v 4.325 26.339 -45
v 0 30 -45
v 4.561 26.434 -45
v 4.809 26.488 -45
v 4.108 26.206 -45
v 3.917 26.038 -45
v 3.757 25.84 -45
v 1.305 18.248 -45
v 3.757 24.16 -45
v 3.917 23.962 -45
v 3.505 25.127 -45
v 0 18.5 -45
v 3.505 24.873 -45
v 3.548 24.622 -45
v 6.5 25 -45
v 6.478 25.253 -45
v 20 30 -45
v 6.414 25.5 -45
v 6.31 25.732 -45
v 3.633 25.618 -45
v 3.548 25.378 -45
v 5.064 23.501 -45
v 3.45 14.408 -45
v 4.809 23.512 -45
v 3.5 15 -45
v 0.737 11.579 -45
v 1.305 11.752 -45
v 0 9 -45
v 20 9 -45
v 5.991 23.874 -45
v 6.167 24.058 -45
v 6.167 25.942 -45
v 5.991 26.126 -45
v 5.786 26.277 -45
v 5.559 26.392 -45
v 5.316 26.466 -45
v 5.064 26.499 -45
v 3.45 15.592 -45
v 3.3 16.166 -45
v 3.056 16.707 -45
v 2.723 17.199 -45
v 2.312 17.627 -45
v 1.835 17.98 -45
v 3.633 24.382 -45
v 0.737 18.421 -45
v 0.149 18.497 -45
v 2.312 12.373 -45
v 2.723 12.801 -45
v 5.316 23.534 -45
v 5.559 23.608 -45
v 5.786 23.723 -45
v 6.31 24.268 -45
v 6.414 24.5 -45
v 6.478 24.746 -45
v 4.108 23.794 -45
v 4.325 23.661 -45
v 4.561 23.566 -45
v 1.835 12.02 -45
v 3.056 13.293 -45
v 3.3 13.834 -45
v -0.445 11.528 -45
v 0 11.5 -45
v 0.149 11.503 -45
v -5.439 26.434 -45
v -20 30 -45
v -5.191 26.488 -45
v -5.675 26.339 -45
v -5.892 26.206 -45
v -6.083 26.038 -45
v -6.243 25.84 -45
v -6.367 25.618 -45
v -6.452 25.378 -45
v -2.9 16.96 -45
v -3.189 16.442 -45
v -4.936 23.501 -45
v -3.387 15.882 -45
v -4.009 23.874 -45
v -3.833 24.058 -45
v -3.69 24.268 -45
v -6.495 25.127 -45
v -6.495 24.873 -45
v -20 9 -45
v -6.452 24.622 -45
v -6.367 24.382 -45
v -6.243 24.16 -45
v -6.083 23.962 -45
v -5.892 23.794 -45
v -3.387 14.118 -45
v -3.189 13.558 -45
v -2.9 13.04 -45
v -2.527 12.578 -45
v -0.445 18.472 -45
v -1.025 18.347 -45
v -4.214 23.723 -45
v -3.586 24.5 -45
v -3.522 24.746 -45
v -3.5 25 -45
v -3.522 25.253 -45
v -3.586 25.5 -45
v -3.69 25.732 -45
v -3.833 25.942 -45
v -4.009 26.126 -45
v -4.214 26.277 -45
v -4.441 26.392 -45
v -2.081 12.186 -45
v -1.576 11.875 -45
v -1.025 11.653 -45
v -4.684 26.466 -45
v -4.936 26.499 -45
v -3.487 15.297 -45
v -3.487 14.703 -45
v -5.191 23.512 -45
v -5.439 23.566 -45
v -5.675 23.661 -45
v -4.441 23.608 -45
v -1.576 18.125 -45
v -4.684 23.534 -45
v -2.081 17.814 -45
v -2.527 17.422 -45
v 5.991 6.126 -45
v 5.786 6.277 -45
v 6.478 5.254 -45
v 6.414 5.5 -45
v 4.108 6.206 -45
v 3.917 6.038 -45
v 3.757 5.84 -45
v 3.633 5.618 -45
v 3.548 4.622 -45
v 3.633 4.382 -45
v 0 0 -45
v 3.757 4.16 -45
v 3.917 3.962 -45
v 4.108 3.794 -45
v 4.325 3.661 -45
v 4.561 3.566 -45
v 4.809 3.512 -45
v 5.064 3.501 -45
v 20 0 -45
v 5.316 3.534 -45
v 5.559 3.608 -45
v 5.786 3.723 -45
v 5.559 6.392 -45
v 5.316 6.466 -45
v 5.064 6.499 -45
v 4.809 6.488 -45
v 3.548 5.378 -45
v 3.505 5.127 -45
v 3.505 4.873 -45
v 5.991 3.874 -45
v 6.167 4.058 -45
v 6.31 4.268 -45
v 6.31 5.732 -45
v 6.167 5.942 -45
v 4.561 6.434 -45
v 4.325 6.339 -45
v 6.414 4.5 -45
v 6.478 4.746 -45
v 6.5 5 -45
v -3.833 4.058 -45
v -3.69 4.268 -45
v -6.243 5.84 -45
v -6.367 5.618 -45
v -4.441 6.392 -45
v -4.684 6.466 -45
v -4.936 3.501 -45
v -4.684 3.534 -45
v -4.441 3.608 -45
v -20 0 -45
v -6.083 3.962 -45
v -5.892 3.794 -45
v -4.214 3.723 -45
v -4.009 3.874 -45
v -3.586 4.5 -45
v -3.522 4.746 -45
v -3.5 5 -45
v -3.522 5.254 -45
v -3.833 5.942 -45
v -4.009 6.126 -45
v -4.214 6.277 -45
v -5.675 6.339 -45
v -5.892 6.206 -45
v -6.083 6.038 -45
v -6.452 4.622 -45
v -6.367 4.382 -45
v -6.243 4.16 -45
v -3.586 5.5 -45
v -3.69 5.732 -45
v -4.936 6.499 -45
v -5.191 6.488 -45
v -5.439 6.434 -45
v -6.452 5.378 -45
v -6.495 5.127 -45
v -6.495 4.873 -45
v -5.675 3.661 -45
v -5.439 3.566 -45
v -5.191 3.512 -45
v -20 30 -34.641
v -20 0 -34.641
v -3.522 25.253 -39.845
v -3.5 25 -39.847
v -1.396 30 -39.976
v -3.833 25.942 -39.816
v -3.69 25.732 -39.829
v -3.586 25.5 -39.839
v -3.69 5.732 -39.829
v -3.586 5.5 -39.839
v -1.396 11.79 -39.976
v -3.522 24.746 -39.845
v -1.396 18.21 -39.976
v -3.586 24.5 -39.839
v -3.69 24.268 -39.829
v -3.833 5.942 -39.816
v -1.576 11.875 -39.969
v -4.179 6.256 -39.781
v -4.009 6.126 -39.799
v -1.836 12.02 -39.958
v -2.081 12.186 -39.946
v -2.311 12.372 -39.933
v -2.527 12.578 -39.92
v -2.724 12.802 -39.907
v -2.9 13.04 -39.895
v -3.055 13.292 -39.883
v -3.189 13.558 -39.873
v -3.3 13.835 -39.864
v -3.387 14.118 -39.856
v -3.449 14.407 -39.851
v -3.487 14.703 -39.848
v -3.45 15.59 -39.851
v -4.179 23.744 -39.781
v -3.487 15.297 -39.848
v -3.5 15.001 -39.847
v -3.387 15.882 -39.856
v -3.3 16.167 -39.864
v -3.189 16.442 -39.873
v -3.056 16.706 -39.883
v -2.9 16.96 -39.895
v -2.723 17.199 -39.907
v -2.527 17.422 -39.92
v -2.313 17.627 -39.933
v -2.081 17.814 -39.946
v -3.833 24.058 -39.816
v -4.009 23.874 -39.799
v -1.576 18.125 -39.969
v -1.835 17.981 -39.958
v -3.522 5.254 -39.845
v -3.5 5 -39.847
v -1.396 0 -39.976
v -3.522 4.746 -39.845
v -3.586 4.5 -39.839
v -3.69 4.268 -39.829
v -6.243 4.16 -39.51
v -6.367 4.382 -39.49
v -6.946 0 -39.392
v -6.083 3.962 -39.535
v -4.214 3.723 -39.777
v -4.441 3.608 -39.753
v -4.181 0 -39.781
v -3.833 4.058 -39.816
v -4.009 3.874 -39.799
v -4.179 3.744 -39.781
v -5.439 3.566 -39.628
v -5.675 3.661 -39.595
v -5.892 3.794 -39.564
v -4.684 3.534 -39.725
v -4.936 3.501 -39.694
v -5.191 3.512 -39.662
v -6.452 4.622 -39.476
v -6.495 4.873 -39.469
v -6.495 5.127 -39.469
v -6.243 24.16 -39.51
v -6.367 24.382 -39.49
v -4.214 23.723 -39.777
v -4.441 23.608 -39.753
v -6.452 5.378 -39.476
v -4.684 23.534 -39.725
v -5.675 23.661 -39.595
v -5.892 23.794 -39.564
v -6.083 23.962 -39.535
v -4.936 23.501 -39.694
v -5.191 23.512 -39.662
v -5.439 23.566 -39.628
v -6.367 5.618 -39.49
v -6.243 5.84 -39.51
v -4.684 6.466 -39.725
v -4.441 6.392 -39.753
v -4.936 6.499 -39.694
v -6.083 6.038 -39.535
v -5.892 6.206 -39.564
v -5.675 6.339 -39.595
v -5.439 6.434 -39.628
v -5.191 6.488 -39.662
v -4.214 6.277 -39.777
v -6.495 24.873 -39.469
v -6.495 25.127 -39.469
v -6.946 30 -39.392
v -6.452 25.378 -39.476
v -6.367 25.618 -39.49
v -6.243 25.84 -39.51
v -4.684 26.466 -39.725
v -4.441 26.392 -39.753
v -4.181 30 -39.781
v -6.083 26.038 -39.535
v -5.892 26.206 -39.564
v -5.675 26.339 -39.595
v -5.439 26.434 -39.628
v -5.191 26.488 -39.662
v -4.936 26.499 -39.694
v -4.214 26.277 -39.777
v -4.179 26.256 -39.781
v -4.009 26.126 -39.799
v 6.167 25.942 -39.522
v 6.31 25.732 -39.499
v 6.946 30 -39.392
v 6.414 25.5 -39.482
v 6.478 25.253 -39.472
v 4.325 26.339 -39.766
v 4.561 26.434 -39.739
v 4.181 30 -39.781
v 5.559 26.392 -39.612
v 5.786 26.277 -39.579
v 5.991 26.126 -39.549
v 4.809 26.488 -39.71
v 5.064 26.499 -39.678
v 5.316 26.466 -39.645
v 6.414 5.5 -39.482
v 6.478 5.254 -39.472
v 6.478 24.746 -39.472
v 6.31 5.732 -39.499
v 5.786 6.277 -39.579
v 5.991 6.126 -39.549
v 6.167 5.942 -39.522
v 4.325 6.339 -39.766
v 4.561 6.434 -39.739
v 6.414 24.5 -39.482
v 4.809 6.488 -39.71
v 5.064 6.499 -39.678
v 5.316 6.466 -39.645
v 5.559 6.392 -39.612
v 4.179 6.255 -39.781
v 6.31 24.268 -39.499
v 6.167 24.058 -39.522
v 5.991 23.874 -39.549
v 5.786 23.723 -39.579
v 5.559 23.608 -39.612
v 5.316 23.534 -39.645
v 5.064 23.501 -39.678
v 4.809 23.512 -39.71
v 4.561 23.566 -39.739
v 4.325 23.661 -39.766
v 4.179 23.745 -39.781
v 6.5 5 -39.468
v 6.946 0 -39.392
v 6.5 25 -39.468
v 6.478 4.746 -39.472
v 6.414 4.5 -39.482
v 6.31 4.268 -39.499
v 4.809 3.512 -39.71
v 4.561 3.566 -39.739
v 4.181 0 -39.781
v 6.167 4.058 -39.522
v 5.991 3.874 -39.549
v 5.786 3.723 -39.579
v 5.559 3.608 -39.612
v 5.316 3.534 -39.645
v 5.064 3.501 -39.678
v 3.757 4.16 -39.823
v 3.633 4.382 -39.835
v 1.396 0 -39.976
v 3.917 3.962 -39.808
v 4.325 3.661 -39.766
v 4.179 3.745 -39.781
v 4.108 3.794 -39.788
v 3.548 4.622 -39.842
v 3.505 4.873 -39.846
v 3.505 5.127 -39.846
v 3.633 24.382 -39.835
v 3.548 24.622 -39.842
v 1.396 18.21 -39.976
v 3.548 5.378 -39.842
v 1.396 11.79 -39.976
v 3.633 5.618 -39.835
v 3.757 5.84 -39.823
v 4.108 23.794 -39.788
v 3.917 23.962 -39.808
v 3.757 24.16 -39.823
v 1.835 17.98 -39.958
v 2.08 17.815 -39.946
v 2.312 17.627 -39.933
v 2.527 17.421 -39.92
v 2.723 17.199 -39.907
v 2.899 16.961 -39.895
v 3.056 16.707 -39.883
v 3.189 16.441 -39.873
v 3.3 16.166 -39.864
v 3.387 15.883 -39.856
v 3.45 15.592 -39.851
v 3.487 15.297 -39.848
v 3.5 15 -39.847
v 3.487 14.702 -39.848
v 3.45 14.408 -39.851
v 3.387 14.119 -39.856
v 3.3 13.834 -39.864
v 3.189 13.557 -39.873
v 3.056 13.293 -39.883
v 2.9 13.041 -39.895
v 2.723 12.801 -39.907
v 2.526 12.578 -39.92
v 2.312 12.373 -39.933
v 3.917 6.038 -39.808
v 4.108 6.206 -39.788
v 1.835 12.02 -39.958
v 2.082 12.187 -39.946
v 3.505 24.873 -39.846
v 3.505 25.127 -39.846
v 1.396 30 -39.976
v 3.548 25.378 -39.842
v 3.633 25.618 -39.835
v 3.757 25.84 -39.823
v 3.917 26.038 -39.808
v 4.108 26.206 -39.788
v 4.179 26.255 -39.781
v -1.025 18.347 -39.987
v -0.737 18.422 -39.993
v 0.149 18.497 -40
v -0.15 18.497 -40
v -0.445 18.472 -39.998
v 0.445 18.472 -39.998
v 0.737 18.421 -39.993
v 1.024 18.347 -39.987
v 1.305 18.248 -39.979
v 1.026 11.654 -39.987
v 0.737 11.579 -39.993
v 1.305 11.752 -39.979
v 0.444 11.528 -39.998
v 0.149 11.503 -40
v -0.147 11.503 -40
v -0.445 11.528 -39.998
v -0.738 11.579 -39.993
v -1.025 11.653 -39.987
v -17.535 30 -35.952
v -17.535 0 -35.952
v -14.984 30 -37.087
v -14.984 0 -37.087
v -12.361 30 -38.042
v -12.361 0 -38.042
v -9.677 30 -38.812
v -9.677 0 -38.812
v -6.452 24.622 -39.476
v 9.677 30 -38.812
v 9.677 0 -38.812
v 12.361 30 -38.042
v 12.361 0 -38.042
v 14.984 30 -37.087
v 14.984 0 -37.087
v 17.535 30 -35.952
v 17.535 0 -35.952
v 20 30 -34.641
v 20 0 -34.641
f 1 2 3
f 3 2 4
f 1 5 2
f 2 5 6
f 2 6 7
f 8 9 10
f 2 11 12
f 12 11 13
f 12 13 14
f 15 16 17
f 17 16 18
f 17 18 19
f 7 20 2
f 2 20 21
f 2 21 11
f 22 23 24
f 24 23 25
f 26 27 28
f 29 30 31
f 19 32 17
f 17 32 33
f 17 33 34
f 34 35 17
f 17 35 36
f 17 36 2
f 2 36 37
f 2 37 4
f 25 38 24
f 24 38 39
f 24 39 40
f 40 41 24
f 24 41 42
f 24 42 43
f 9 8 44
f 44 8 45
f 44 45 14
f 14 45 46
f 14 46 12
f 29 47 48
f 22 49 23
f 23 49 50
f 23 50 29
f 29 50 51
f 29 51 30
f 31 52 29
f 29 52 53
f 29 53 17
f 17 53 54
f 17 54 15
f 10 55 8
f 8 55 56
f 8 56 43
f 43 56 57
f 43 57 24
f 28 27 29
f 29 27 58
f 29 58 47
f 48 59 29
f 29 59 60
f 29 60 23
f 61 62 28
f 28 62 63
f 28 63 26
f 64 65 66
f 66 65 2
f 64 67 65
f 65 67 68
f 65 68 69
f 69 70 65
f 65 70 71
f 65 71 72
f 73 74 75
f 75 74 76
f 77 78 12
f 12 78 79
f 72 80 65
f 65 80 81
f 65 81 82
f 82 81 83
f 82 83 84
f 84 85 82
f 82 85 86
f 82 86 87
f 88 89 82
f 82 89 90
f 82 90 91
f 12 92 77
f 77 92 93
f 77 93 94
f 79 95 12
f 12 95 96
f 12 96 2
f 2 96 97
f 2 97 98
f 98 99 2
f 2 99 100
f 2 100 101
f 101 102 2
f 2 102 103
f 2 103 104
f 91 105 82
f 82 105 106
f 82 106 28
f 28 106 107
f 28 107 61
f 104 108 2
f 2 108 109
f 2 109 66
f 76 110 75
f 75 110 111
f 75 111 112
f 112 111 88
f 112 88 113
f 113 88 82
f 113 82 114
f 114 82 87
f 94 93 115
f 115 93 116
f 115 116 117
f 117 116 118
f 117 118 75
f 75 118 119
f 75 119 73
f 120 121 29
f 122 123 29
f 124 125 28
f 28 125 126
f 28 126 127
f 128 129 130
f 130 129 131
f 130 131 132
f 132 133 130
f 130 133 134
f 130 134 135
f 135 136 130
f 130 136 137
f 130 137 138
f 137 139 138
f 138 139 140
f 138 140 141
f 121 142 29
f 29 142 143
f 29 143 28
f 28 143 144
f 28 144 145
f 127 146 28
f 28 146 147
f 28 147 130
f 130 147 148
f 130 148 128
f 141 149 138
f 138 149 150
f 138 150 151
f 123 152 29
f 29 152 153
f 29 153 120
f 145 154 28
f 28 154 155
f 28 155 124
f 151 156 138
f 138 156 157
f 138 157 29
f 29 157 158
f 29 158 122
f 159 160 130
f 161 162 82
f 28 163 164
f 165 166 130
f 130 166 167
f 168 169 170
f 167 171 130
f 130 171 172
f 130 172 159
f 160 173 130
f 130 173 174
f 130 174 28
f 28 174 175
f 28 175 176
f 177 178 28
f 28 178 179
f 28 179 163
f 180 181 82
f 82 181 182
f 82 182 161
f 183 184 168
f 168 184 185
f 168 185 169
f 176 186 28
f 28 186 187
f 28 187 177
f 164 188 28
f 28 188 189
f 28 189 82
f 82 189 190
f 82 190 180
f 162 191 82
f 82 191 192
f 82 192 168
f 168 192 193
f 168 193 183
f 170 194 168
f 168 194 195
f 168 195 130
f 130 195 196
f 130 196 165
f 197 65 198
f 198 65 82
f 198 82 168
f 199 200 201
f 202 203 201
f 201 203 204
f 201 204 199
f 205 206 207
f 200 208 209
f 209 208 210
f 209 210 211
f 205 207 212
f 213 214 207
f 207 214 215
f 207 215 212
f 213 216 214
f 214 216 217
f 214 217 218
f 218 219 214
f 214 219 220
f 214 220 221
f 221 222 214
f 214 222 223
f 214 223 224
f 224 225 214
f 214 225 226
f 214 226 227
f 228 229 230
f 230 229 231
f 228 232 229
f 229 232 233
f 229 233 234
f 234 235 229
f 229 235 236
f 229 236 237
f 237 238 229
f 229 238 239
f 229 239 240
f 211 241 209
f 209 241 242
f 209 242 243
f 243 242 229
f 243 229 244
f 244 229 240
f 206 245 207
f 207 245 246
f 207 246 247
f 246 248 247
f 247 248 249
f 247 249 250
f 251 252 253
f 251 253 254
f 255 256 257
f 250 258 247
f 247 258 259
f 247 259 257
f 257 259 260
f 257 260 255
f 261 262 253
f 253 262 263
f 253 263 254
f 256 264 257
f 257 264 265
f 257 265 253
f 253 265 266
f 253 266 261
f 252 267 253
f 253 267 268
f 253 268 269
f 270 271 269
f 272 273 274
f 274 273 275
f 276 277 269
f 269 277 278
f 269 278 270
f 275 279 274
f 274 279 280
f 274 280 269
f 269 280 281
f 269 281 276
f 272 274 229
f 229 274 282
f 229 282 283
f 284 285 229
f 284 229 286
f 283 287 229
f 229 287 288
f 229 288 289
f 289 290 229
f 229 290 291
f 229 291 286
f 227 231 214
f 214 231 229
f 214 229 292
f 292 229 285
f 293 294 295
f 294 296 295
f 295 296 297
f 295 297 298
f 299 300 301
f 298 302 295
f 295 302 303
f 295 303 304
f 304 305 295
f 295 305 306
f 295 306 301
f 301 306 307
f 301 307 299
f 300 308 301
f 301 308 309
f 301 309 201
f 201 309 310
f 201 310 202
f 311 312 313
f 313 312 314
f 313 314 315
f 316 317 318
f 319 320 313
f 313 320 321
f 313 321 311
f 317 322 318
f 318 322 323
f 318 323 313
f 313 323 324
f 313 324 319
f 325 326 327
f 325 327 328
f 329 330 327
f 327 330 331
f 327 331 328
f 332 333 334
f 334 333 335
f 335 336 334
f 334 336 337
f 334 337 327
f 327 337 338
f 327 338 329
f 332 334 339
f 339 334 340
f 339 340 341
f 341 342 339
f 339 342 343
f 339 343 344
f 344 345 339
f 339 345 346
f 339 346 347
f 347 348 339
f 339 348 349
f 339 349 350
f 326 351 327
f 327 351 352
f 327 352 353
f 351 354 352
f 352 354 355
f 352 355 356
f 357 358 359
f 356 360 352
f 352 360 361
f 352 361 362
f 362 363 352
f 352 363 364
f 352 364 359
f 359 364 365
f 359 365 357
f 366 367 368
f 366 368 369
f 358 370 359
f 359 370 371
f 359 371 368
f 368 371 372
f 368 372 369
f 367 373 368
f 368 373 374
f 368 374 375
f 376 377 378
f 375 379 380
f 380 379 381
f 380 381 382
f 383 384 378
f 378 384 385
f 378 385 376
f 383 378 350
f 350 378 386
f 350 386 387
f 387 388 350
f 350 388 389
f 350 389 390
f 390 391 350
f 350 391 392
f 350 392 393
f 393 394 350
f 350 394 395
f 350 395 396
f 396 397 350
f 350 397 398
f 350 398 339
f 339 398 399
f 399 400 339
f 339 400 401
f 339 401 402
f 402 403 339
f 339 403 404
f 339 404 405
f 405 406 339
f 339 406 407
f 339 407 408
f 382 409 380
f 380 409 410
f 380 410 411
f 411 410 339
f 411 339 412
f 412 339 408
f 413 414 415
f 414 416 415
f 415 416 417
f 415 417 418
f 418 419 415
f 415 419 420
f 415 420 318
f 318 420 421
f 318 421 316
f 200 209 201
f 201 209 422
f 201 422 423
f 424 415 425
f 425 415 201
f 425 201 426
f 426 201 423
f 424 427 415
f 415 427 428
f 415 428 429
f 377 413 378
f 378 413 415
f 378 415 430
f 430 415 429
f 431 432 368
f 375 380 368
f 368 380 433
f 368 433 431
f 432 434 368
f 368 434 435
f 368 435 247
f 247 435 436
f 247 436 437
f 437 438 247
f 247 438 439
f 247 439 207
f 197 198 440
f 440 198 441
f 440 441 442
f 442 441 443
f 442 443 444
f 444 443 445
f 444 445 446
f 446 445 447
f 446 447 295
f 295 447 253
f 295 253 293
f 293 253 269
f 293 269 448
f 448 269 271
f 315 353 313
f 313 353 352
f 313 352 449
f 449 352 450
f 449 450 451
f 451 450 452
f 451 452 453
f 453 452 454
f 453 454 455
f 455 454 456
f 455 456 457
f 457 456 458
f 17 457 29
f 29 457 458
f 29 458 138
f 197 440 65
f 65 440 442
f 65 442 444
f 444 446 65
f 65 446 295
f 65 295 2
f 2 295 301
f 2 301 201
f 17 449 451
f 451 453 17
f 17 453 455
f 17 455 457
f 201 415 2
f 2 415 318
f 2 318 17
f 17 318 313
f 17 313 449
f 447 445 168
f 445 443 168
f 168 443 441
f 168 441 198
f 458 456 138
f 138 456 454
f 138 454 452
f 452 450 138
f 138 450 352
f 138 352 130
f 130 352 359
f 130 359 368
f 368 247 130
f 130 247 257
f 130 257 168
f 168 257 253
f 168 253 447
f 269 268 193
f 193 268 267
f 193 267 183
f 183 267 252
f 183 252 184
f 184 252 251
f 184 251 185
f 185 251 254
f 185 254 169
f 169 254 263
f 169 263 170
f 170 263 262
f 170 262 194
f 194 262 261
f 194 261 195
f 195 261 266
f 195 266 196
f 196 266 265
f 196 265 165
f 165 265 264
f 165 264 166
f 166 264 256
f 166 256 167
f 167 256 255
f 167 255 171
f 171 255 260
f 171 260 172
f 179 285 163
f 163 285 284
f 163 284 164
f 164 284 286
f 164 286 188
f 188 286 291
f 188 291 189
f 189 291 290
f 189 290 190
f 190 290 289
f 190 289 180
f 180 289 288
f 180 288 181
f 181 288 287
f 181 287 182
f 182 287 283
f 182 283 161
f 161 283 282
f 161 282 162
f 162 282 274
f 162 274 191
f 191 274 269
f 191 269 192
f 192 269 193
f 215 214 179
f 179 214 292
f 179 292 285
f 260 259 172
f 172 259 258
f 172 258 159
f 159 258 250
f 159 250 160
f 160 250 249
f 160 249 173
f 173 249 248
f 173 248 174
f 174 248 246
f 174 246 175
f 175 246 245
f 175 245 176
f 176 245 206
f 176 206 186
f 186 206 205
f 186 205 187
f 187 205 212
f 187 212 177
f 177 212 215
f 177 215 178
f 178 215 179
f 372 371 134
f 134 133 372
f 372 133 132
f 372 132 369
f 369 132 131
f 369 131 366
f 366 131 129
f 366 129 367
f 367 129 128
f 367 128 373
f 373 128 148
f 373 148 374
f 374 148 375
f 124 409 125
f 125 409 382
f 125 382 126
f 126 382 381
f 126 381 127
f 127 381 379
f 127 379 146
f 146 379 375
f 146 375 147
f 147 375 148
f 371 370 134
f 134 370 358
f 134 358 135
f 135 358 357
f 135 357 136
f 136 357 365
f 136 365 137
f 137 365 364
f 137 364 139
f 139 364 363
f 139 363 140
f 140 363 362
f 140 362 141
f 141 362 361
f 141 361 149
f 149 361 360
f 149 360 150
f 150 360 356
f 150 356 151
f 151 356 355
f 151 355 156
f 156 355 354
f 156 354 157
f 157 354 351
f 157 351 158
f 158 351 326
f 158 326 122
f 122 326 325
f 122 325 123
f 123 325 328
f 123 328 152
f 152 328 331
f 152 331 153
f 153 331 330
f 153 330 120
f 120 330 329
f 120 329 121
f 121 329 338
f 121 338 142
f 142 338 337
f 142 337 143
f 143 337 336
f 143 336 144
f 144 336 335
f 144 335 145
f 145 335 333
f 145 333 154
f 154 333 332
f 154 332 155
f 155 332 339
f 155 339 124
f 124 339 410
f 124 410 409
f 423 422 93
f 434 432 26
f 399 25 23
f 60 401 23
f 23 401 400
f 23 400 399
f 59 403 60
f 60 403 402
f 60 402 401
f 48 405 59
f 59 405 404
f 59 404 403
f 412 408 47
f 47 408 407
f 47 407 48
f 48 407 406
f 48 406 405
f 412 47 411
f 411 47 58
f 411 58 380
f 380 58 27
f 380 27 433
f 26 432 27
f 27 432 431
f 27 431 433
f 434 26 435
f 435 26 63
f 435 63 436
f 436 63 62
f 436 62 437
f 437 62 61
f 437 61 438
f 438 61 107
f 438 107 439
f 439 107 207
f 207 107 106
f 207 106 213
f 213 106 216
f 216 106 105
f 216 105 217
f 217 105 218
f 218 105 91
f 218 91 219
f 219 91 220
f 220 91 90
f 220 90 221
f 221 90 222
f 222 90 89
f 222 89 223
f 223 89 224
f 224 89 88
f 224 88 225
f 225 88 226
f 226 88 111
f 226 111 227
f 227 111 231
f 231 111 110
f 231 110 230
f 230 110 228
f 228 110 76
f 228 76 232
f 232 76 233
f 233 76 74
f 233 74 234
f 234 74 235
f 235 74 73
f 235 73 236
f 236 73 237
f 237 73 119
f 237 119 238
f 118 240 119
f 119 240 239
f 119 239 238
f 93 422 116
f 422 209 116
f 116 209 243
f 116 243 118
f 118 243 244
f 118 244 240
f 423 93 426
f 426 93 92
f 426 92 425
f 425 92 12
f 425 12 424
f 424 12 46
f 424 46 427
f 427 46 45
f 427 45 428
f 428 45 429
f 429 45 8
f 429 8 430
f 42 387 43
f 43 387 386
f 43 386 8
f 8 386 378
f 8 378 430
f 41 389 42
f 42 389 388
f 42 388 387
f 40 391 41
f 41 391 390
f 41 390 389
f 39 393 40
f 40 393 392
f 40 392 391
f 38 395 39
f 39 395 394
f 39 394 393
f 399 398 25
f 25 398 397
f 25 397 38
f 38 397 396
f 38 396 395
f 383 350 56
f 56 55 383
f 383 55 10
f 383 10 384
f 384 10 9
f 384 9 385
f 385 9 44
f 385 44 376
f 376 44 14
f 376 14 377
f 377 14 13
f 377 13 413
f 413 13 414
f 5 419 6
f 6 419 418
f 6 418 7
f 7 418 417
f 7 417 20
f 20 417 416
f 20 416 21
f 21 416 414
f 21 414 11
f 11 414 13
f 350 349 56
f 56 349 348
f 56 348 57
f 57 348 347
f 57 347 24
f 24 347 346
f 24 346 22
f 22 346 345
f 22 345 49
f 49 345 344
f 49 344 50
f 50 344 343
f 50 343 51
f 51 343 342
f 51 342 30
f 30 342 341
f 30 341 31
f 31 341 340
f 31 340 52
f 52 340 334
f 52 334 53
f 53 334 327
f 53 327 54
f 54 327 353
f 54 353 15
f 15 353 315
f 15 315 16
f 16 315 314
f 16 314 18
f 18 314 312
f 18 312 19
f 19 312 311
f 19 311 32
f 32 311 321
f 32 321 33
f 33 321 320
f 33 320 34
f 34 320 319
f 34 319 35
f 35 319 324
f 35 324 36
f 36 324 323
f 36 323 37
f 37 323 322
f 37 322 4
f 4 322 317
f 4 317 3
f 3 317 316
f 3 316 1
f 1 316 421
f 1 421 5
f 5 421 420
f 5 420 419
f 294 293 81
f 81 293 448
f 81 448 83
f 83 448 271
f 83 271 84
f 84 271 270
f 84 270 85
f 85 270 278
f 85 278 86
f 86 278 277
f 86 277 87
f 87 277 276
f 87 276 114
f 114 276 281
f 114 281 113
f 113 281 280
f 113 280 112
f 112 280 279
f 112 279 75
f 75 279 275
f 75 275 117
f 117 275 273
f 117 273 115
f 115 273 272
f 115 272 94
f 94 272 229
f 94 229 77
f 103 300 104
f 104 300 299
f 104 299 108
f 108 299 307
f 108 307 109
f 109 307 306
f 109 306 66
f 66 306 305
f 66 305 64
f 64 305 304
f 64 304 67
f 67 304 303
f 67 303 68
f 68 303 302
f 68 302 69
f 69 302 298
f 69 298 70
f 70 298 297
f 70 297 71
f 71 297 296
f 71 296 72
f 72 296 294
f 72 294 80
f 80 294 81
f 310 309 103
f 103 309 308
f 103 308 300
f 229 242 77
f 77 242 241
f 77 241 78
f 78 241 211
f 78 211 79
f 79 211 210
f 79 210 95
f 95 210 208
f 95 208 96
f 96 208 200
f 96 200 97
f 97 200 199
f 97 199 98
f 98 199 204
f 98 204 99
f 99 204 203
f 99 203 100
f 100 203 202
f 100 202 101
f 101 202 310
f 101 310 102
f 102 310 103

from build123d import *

# Parameters (mm, degrees)
Y_KSEKLIK_EKSTR_ZYON1_DEPTH = 30
IZIM2_R                     = 1.5
IZIM2_R_2                   = 3.5
KES_EKSTR_ZYON1_DEPTH       = 58.662812973


with BuildPart() as part:
    # Çizim1 → Yükseklik-Ekstrüzyon1 (new body)
    with BuildSketch(Plane(origin=(0, 0, 0), x_dir=(1, 0, 0), z_dir=(0, 1, 0))):
        with BuildLine():
            Line((20, 40), (20, 34.641016151))
            ThreePointArc((20, 34.641016151), (0, 40), (-20, 34.641016151))
            Line((-20, 34.641016151), (-20, 45))
            Line((-20, 45), (20, 45))
            Line((20, 45), (20, 40))
        make_face()
    extrude(amount=Y_KSEKLIK_EKSTR_ZYON1_DEPTH)

    # Çizim2 → Kes-Ekstrüzyon1 (cut, through all)
    with BuildSketch(Plane.XY):
        with Locations((-5, 5)):
            Circle(IZIM2_R)
        with Locations((5, 5)):
            Circle(IZIM2_R)
        with Locations((5, 25)):
            Circle(IZIM2_R)
        with Locations((-5, 25)):
            Circle(IZIM2_R)
        with Locations((0, 15)):
            Circle(IZIM2_R_2)
    extrude(amount=-KES_EKSTR_ZYON1_DEPTH, mode=Mode.SUBTRACT)


solid = part.part
